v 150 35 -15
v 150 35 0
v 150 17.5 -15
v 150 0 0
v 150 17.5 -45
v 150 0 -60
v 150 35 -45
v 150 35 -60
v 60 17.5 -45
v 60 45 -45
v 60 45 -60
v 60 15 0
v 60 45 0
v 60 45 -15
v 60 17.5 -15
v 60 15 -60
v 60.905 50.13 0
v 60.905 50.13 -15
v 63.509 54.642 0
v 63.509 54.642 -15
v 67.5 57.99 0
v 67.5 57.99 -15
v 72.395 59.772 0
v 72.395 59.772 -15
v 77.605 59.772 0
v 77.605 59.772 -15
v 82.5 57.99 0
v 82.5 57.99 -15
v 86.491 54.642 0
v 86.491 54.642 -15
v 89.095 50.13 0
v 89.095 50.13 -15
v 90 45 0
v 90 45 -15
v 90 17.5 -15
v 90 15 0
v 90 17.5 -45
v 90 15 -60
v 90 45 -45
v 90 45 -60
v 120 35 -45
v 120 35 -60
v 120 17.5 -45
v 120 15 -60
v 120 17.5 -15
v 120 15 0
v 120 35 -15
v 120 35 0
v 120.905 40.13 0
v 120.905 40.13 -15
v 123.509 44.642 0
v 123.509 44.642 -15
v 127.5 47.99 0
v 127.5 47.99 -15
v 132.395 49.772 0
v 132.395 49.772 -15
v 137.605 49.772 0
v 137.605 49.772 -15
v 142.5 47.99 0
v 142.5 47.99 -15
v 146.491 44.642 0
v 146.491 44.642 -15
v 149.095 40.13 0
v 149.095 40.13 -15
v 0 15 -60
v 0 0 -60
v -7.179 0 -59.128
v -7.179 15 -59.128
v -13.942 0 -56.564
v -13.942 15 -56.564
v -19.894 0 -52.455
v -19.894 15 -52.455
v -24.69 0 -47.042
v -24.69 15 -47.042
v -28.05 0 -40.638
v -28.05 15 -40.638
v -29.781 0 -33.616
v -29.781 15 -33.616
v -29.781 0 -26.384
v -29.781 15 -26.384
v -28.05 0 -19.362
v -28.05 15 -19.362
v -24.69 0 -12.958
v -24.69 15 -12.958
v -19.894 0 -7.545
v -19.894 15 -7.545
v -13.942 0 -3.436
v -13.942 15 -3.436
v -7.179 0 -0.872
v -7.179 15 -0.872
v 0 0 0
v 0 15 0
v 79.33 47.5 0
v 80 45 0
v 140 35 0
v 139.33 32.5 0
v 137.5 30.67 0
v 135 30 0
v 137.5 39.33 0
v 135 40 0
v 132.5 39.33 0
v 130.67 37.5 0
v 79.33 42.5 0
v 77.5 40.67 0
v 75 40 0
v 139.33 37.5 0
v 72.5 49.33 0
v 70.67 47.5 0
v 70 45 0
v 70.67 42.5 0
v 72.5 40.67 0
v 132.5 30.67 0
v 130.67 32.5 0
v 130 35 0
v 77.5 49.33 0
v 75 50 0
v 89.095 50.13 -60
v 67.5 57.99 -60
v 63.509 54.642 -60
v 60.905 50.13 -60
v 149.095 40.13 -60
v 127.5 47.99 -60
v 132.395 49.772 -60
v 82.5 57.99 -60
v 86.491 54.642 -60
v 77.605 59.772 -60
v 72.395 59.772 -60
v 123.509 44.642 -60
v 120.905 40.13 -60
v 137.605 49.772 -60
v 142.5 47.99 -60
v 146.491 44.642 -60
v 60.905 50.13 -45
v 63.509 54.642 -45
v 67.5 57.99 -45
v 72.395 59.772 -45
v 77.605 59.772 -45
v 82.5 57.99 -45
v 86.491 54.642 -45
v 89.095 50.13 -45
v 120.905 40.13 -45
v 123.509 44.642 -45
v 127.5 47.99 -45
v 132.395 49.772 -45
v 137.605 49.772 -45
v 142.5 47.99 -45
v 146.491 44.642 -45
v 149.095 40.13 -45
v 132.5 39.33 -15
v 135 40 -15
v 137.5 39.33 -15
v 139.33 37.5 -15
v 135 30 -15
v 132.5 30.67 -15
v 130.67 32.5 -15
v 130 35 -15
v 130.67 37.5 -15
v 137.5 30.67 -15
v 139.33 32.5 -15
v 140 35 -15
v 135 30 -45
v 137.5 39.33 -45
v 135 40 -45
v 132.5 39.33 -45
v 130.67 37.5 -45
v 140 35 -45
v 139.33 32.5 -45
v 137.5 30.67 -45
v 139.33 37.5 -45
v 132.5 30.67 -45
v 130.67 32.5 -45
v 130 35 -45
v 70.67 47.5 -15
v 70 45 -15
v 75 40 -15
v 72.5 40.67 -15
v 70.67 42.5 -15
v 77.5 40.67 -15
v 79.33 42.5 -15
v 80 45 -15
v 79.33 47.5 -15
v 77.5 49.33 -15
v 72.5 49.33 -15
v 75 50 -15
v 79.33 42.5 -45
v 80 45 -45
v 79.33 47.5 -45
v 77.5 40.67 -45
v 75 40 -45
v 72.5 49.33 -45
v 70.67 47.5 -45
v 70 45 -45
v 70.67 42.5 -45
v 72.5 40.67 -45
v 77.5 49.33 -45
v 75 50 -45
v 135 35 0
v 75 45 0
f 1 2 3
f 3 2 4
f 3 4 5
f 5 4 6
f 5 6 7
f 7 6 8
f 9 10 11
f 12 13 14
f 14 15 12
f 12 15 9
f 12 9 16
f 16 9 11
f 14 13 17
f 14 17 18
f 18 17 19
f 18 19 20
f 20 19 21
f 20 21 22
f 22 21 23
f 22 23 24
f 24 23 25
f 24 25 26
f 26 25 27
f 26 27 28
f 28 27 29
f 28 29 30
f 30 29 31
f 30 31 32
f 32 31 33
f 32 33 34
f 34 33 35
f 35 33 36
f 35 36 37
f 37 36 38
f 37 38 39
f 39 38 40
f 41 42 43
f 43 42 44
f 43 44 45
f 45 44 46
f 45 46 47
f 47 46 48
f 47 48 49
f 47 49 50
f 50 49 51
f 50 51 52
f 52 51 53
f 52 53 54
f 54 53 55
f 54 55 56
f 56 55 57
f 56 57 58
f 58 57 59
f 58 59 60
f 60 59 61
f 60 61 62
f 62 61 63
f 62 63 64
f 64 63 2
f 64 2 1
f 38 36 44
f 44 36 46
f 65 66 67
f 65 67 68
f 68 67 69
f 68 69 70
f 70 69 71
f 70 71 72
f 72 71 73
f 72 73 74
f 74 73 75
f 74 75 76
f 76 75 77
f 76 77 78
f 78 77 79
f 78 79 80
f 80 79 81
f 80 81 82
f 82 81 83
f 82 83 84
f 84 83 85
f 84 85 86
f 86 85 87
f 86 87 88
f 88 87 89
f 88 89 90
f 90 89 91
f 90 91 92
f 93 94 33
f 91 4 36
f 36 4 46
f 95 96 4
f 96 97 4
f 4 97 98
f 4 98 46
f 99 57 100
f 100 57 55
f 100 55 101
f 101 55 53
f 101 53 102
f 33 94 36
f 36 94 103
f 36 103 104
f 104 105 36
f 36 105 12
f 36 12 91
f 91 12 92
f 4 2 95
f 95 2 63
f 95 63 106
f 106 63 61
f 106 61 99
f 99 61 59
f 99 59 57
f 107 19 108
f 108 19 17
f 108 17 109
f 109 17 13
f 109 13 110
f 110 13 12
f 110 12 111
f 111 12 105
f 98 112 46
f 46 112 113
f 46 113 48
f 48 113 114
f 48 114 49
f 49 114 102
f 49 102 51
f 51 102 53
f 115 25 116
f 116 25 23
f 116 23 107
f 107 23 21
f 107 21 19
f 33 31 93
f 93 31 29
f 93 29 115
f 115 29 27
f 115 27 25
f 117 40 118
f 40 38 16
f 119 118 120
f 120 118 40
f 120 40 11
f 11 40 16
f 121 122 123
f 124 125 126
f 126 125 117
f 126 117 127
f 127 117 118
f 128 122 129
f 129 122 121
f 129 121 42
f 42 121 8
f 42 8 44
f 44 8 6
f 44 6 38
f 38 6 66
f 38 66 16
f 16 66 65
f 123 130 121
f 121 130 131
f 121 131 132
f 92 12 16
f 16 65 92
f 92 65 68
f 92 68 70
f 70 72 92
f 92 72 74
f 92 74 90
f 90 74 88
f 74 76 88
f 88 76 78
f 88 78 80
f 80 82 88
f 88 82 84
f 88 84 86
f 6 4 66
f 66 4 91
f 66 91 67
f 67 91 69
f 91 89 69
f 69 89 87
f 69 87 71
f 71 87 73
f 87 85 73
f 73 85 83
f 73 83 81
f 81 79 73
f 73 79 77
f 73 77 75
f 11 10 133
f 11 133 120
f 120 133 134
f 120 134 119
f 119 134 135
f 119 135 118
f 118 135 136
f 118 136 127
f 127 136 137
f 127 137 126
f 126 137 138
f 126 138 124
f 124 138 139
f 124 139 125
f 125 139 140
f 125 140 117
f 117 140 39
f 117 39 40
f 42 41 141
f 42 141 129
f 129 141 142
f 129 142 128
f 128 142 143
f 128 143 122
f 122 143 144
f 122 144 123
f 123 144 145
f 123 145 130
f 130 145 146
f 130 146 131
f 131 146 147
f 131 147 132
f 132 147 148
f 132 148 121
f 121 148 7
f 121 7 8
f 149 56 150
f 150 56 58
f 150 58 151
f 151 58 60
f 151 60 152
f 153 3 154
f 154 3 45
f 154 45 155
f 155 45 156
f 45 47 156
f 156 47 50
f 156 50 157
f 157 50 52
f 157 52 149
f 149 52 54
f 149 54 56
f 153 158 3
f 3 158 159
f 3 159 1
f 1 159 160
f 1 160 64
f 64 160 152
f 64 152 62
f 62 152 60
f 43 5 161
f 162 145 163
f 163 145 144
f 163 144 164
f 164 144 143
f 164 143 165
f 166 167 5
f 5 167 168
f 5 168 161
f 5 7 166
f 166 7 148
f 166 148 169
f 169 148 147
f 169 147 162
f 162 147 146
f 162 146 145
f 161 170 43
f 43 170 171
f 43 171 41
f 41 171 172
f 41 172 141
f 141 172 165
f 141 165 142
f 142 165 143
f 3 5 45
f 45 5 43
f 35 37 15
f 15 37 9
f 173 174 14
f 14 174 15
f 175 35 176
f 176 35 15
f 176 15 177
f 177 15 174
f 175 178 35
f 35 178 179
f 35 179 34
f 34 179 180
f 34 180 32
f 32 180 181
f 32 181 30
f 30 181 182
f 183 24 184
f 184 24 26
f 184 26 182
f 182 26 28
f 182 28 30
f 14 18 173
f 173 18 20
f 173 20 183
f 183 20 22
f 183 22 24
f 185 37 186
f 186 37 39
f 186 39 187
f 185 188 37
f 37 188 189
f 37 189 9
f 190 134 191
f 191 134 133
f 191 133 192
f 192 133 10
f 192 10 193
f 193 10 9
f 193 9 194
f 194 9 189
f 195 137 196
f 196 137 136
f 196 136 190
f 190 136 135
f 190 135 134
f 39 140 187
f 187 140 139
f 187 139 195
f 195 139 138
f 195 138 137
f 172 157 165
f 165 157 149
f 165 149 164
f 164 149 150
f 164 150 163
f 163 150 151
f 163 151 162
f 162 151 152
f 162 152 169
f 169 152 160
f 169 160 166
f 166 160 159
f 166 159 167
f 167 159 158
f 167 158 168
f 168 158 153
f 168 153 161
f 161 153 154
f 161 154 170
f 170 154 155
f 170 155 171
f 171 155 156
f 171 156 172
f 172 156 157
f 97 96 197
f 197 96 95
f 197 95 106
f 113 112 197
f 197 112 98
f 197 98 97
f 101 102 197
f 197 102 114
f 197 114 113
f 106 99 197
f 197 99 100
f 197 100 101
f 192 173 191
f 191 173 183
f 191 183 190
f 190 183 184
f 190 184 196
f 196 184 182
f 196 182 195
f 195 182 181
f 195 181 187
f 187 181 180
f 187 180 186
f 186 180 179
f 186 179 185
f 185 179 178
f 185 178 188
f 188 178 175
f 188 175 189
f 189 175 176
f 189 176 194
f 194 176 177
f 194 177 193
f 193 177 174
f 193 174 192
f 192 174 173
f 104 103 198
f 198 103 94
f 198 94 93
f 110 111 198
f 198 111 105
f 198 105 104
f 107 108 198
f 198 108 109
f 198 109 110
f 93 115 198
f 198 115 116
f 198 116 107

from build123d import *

# Parameters (mm, degrees)
BOSS_EXTRUDE1_DEPTH = 15
BOSS_EXTRUDE2_DEPTH = 60
SKETCH3_W           = 30
SKETCH3_H           = 17.5
SKETCH3_H_2         = 34.418211048
CUT_EXTRUDE1_DEPTH  = 199.997487421
BOSS_EXTRUDE3_START = -45
SKETCH4_R           = 5
BOSS_EXTRUDE3_DEPTH = 30


with BuildPart() as part:
    # Sketch1 → Boss-Extrude1 (new body)
    with BuildSketch(Plane(origin=(0, 0, 0), x_dir=(1, 0, 0), z_dir=(0, 1, 0))):
        with BuildLine():
            Line((0, 0), (150, 0))
            Line((150, 0), (150, 60))
            Line((150, 60), (0, 60))
            ThreePointArc((0, 60), (-30, 30), (0, 0))
        make_face()
    extrude(amount=BOSS_EXTRUDE1_DEPTH)

    # Sketch2 → Boss-Extrude2 (add)
    with BuildSketch(Plane.XY):
        with BuildLine():
            Line((60, 15), (90, 15))
            Line((90, 15), (90, 45))
            ThreePointArc((90, 45), (75, 60), (60, 45))
            Line((60, 45), (60, 15))
        make_face()
        with BuildLine():
            Line((120, 15), (150, 15))
            Line((150, 15), (150, 35))
            ThreePointArc((150, 35), (135, 50), (120, 35))
            Line((120, 35), (120, 15))
        make_face()
    extrude(amount=-BOSS_EXTRUDE2_DEPTH)

    # Sketch3 → Cut-Extrude1 (cut, through all)
    with BuildSketch(Plane(origin=(150, 0, 0), x_dir=(0, 0, -1), z_dir=(1, 0, 0))):
        with Locations((30, 26.25)):
            Rectangle(SKETCH3_W, SKETCH3_H)
        with Locations((30, 52.209105524)):
            Rectangle(SKETCH3_W, SKETCH3_H_2)
    extrude(amount=-CUT_EXTRUDE1_DEPTH, mode=Mode.SUBTRACT)

    # Sketch4 → Boss-Extrude3 (add)
    with BuildSketch(Plane.XY.offset(BOSS_EXTRUDE3_START)):
        with Locations(Location((135, 35, 0), (0, 0, 180))):
            Circle(SKETCH4_R)
        with Locations(Location((75, 45, 0), (0, 0, 180))):
            Circle(SKETCH4_R)
    extrude(amount=BOSS_EXTRUDE3_DEPTH)


solid = part.part
